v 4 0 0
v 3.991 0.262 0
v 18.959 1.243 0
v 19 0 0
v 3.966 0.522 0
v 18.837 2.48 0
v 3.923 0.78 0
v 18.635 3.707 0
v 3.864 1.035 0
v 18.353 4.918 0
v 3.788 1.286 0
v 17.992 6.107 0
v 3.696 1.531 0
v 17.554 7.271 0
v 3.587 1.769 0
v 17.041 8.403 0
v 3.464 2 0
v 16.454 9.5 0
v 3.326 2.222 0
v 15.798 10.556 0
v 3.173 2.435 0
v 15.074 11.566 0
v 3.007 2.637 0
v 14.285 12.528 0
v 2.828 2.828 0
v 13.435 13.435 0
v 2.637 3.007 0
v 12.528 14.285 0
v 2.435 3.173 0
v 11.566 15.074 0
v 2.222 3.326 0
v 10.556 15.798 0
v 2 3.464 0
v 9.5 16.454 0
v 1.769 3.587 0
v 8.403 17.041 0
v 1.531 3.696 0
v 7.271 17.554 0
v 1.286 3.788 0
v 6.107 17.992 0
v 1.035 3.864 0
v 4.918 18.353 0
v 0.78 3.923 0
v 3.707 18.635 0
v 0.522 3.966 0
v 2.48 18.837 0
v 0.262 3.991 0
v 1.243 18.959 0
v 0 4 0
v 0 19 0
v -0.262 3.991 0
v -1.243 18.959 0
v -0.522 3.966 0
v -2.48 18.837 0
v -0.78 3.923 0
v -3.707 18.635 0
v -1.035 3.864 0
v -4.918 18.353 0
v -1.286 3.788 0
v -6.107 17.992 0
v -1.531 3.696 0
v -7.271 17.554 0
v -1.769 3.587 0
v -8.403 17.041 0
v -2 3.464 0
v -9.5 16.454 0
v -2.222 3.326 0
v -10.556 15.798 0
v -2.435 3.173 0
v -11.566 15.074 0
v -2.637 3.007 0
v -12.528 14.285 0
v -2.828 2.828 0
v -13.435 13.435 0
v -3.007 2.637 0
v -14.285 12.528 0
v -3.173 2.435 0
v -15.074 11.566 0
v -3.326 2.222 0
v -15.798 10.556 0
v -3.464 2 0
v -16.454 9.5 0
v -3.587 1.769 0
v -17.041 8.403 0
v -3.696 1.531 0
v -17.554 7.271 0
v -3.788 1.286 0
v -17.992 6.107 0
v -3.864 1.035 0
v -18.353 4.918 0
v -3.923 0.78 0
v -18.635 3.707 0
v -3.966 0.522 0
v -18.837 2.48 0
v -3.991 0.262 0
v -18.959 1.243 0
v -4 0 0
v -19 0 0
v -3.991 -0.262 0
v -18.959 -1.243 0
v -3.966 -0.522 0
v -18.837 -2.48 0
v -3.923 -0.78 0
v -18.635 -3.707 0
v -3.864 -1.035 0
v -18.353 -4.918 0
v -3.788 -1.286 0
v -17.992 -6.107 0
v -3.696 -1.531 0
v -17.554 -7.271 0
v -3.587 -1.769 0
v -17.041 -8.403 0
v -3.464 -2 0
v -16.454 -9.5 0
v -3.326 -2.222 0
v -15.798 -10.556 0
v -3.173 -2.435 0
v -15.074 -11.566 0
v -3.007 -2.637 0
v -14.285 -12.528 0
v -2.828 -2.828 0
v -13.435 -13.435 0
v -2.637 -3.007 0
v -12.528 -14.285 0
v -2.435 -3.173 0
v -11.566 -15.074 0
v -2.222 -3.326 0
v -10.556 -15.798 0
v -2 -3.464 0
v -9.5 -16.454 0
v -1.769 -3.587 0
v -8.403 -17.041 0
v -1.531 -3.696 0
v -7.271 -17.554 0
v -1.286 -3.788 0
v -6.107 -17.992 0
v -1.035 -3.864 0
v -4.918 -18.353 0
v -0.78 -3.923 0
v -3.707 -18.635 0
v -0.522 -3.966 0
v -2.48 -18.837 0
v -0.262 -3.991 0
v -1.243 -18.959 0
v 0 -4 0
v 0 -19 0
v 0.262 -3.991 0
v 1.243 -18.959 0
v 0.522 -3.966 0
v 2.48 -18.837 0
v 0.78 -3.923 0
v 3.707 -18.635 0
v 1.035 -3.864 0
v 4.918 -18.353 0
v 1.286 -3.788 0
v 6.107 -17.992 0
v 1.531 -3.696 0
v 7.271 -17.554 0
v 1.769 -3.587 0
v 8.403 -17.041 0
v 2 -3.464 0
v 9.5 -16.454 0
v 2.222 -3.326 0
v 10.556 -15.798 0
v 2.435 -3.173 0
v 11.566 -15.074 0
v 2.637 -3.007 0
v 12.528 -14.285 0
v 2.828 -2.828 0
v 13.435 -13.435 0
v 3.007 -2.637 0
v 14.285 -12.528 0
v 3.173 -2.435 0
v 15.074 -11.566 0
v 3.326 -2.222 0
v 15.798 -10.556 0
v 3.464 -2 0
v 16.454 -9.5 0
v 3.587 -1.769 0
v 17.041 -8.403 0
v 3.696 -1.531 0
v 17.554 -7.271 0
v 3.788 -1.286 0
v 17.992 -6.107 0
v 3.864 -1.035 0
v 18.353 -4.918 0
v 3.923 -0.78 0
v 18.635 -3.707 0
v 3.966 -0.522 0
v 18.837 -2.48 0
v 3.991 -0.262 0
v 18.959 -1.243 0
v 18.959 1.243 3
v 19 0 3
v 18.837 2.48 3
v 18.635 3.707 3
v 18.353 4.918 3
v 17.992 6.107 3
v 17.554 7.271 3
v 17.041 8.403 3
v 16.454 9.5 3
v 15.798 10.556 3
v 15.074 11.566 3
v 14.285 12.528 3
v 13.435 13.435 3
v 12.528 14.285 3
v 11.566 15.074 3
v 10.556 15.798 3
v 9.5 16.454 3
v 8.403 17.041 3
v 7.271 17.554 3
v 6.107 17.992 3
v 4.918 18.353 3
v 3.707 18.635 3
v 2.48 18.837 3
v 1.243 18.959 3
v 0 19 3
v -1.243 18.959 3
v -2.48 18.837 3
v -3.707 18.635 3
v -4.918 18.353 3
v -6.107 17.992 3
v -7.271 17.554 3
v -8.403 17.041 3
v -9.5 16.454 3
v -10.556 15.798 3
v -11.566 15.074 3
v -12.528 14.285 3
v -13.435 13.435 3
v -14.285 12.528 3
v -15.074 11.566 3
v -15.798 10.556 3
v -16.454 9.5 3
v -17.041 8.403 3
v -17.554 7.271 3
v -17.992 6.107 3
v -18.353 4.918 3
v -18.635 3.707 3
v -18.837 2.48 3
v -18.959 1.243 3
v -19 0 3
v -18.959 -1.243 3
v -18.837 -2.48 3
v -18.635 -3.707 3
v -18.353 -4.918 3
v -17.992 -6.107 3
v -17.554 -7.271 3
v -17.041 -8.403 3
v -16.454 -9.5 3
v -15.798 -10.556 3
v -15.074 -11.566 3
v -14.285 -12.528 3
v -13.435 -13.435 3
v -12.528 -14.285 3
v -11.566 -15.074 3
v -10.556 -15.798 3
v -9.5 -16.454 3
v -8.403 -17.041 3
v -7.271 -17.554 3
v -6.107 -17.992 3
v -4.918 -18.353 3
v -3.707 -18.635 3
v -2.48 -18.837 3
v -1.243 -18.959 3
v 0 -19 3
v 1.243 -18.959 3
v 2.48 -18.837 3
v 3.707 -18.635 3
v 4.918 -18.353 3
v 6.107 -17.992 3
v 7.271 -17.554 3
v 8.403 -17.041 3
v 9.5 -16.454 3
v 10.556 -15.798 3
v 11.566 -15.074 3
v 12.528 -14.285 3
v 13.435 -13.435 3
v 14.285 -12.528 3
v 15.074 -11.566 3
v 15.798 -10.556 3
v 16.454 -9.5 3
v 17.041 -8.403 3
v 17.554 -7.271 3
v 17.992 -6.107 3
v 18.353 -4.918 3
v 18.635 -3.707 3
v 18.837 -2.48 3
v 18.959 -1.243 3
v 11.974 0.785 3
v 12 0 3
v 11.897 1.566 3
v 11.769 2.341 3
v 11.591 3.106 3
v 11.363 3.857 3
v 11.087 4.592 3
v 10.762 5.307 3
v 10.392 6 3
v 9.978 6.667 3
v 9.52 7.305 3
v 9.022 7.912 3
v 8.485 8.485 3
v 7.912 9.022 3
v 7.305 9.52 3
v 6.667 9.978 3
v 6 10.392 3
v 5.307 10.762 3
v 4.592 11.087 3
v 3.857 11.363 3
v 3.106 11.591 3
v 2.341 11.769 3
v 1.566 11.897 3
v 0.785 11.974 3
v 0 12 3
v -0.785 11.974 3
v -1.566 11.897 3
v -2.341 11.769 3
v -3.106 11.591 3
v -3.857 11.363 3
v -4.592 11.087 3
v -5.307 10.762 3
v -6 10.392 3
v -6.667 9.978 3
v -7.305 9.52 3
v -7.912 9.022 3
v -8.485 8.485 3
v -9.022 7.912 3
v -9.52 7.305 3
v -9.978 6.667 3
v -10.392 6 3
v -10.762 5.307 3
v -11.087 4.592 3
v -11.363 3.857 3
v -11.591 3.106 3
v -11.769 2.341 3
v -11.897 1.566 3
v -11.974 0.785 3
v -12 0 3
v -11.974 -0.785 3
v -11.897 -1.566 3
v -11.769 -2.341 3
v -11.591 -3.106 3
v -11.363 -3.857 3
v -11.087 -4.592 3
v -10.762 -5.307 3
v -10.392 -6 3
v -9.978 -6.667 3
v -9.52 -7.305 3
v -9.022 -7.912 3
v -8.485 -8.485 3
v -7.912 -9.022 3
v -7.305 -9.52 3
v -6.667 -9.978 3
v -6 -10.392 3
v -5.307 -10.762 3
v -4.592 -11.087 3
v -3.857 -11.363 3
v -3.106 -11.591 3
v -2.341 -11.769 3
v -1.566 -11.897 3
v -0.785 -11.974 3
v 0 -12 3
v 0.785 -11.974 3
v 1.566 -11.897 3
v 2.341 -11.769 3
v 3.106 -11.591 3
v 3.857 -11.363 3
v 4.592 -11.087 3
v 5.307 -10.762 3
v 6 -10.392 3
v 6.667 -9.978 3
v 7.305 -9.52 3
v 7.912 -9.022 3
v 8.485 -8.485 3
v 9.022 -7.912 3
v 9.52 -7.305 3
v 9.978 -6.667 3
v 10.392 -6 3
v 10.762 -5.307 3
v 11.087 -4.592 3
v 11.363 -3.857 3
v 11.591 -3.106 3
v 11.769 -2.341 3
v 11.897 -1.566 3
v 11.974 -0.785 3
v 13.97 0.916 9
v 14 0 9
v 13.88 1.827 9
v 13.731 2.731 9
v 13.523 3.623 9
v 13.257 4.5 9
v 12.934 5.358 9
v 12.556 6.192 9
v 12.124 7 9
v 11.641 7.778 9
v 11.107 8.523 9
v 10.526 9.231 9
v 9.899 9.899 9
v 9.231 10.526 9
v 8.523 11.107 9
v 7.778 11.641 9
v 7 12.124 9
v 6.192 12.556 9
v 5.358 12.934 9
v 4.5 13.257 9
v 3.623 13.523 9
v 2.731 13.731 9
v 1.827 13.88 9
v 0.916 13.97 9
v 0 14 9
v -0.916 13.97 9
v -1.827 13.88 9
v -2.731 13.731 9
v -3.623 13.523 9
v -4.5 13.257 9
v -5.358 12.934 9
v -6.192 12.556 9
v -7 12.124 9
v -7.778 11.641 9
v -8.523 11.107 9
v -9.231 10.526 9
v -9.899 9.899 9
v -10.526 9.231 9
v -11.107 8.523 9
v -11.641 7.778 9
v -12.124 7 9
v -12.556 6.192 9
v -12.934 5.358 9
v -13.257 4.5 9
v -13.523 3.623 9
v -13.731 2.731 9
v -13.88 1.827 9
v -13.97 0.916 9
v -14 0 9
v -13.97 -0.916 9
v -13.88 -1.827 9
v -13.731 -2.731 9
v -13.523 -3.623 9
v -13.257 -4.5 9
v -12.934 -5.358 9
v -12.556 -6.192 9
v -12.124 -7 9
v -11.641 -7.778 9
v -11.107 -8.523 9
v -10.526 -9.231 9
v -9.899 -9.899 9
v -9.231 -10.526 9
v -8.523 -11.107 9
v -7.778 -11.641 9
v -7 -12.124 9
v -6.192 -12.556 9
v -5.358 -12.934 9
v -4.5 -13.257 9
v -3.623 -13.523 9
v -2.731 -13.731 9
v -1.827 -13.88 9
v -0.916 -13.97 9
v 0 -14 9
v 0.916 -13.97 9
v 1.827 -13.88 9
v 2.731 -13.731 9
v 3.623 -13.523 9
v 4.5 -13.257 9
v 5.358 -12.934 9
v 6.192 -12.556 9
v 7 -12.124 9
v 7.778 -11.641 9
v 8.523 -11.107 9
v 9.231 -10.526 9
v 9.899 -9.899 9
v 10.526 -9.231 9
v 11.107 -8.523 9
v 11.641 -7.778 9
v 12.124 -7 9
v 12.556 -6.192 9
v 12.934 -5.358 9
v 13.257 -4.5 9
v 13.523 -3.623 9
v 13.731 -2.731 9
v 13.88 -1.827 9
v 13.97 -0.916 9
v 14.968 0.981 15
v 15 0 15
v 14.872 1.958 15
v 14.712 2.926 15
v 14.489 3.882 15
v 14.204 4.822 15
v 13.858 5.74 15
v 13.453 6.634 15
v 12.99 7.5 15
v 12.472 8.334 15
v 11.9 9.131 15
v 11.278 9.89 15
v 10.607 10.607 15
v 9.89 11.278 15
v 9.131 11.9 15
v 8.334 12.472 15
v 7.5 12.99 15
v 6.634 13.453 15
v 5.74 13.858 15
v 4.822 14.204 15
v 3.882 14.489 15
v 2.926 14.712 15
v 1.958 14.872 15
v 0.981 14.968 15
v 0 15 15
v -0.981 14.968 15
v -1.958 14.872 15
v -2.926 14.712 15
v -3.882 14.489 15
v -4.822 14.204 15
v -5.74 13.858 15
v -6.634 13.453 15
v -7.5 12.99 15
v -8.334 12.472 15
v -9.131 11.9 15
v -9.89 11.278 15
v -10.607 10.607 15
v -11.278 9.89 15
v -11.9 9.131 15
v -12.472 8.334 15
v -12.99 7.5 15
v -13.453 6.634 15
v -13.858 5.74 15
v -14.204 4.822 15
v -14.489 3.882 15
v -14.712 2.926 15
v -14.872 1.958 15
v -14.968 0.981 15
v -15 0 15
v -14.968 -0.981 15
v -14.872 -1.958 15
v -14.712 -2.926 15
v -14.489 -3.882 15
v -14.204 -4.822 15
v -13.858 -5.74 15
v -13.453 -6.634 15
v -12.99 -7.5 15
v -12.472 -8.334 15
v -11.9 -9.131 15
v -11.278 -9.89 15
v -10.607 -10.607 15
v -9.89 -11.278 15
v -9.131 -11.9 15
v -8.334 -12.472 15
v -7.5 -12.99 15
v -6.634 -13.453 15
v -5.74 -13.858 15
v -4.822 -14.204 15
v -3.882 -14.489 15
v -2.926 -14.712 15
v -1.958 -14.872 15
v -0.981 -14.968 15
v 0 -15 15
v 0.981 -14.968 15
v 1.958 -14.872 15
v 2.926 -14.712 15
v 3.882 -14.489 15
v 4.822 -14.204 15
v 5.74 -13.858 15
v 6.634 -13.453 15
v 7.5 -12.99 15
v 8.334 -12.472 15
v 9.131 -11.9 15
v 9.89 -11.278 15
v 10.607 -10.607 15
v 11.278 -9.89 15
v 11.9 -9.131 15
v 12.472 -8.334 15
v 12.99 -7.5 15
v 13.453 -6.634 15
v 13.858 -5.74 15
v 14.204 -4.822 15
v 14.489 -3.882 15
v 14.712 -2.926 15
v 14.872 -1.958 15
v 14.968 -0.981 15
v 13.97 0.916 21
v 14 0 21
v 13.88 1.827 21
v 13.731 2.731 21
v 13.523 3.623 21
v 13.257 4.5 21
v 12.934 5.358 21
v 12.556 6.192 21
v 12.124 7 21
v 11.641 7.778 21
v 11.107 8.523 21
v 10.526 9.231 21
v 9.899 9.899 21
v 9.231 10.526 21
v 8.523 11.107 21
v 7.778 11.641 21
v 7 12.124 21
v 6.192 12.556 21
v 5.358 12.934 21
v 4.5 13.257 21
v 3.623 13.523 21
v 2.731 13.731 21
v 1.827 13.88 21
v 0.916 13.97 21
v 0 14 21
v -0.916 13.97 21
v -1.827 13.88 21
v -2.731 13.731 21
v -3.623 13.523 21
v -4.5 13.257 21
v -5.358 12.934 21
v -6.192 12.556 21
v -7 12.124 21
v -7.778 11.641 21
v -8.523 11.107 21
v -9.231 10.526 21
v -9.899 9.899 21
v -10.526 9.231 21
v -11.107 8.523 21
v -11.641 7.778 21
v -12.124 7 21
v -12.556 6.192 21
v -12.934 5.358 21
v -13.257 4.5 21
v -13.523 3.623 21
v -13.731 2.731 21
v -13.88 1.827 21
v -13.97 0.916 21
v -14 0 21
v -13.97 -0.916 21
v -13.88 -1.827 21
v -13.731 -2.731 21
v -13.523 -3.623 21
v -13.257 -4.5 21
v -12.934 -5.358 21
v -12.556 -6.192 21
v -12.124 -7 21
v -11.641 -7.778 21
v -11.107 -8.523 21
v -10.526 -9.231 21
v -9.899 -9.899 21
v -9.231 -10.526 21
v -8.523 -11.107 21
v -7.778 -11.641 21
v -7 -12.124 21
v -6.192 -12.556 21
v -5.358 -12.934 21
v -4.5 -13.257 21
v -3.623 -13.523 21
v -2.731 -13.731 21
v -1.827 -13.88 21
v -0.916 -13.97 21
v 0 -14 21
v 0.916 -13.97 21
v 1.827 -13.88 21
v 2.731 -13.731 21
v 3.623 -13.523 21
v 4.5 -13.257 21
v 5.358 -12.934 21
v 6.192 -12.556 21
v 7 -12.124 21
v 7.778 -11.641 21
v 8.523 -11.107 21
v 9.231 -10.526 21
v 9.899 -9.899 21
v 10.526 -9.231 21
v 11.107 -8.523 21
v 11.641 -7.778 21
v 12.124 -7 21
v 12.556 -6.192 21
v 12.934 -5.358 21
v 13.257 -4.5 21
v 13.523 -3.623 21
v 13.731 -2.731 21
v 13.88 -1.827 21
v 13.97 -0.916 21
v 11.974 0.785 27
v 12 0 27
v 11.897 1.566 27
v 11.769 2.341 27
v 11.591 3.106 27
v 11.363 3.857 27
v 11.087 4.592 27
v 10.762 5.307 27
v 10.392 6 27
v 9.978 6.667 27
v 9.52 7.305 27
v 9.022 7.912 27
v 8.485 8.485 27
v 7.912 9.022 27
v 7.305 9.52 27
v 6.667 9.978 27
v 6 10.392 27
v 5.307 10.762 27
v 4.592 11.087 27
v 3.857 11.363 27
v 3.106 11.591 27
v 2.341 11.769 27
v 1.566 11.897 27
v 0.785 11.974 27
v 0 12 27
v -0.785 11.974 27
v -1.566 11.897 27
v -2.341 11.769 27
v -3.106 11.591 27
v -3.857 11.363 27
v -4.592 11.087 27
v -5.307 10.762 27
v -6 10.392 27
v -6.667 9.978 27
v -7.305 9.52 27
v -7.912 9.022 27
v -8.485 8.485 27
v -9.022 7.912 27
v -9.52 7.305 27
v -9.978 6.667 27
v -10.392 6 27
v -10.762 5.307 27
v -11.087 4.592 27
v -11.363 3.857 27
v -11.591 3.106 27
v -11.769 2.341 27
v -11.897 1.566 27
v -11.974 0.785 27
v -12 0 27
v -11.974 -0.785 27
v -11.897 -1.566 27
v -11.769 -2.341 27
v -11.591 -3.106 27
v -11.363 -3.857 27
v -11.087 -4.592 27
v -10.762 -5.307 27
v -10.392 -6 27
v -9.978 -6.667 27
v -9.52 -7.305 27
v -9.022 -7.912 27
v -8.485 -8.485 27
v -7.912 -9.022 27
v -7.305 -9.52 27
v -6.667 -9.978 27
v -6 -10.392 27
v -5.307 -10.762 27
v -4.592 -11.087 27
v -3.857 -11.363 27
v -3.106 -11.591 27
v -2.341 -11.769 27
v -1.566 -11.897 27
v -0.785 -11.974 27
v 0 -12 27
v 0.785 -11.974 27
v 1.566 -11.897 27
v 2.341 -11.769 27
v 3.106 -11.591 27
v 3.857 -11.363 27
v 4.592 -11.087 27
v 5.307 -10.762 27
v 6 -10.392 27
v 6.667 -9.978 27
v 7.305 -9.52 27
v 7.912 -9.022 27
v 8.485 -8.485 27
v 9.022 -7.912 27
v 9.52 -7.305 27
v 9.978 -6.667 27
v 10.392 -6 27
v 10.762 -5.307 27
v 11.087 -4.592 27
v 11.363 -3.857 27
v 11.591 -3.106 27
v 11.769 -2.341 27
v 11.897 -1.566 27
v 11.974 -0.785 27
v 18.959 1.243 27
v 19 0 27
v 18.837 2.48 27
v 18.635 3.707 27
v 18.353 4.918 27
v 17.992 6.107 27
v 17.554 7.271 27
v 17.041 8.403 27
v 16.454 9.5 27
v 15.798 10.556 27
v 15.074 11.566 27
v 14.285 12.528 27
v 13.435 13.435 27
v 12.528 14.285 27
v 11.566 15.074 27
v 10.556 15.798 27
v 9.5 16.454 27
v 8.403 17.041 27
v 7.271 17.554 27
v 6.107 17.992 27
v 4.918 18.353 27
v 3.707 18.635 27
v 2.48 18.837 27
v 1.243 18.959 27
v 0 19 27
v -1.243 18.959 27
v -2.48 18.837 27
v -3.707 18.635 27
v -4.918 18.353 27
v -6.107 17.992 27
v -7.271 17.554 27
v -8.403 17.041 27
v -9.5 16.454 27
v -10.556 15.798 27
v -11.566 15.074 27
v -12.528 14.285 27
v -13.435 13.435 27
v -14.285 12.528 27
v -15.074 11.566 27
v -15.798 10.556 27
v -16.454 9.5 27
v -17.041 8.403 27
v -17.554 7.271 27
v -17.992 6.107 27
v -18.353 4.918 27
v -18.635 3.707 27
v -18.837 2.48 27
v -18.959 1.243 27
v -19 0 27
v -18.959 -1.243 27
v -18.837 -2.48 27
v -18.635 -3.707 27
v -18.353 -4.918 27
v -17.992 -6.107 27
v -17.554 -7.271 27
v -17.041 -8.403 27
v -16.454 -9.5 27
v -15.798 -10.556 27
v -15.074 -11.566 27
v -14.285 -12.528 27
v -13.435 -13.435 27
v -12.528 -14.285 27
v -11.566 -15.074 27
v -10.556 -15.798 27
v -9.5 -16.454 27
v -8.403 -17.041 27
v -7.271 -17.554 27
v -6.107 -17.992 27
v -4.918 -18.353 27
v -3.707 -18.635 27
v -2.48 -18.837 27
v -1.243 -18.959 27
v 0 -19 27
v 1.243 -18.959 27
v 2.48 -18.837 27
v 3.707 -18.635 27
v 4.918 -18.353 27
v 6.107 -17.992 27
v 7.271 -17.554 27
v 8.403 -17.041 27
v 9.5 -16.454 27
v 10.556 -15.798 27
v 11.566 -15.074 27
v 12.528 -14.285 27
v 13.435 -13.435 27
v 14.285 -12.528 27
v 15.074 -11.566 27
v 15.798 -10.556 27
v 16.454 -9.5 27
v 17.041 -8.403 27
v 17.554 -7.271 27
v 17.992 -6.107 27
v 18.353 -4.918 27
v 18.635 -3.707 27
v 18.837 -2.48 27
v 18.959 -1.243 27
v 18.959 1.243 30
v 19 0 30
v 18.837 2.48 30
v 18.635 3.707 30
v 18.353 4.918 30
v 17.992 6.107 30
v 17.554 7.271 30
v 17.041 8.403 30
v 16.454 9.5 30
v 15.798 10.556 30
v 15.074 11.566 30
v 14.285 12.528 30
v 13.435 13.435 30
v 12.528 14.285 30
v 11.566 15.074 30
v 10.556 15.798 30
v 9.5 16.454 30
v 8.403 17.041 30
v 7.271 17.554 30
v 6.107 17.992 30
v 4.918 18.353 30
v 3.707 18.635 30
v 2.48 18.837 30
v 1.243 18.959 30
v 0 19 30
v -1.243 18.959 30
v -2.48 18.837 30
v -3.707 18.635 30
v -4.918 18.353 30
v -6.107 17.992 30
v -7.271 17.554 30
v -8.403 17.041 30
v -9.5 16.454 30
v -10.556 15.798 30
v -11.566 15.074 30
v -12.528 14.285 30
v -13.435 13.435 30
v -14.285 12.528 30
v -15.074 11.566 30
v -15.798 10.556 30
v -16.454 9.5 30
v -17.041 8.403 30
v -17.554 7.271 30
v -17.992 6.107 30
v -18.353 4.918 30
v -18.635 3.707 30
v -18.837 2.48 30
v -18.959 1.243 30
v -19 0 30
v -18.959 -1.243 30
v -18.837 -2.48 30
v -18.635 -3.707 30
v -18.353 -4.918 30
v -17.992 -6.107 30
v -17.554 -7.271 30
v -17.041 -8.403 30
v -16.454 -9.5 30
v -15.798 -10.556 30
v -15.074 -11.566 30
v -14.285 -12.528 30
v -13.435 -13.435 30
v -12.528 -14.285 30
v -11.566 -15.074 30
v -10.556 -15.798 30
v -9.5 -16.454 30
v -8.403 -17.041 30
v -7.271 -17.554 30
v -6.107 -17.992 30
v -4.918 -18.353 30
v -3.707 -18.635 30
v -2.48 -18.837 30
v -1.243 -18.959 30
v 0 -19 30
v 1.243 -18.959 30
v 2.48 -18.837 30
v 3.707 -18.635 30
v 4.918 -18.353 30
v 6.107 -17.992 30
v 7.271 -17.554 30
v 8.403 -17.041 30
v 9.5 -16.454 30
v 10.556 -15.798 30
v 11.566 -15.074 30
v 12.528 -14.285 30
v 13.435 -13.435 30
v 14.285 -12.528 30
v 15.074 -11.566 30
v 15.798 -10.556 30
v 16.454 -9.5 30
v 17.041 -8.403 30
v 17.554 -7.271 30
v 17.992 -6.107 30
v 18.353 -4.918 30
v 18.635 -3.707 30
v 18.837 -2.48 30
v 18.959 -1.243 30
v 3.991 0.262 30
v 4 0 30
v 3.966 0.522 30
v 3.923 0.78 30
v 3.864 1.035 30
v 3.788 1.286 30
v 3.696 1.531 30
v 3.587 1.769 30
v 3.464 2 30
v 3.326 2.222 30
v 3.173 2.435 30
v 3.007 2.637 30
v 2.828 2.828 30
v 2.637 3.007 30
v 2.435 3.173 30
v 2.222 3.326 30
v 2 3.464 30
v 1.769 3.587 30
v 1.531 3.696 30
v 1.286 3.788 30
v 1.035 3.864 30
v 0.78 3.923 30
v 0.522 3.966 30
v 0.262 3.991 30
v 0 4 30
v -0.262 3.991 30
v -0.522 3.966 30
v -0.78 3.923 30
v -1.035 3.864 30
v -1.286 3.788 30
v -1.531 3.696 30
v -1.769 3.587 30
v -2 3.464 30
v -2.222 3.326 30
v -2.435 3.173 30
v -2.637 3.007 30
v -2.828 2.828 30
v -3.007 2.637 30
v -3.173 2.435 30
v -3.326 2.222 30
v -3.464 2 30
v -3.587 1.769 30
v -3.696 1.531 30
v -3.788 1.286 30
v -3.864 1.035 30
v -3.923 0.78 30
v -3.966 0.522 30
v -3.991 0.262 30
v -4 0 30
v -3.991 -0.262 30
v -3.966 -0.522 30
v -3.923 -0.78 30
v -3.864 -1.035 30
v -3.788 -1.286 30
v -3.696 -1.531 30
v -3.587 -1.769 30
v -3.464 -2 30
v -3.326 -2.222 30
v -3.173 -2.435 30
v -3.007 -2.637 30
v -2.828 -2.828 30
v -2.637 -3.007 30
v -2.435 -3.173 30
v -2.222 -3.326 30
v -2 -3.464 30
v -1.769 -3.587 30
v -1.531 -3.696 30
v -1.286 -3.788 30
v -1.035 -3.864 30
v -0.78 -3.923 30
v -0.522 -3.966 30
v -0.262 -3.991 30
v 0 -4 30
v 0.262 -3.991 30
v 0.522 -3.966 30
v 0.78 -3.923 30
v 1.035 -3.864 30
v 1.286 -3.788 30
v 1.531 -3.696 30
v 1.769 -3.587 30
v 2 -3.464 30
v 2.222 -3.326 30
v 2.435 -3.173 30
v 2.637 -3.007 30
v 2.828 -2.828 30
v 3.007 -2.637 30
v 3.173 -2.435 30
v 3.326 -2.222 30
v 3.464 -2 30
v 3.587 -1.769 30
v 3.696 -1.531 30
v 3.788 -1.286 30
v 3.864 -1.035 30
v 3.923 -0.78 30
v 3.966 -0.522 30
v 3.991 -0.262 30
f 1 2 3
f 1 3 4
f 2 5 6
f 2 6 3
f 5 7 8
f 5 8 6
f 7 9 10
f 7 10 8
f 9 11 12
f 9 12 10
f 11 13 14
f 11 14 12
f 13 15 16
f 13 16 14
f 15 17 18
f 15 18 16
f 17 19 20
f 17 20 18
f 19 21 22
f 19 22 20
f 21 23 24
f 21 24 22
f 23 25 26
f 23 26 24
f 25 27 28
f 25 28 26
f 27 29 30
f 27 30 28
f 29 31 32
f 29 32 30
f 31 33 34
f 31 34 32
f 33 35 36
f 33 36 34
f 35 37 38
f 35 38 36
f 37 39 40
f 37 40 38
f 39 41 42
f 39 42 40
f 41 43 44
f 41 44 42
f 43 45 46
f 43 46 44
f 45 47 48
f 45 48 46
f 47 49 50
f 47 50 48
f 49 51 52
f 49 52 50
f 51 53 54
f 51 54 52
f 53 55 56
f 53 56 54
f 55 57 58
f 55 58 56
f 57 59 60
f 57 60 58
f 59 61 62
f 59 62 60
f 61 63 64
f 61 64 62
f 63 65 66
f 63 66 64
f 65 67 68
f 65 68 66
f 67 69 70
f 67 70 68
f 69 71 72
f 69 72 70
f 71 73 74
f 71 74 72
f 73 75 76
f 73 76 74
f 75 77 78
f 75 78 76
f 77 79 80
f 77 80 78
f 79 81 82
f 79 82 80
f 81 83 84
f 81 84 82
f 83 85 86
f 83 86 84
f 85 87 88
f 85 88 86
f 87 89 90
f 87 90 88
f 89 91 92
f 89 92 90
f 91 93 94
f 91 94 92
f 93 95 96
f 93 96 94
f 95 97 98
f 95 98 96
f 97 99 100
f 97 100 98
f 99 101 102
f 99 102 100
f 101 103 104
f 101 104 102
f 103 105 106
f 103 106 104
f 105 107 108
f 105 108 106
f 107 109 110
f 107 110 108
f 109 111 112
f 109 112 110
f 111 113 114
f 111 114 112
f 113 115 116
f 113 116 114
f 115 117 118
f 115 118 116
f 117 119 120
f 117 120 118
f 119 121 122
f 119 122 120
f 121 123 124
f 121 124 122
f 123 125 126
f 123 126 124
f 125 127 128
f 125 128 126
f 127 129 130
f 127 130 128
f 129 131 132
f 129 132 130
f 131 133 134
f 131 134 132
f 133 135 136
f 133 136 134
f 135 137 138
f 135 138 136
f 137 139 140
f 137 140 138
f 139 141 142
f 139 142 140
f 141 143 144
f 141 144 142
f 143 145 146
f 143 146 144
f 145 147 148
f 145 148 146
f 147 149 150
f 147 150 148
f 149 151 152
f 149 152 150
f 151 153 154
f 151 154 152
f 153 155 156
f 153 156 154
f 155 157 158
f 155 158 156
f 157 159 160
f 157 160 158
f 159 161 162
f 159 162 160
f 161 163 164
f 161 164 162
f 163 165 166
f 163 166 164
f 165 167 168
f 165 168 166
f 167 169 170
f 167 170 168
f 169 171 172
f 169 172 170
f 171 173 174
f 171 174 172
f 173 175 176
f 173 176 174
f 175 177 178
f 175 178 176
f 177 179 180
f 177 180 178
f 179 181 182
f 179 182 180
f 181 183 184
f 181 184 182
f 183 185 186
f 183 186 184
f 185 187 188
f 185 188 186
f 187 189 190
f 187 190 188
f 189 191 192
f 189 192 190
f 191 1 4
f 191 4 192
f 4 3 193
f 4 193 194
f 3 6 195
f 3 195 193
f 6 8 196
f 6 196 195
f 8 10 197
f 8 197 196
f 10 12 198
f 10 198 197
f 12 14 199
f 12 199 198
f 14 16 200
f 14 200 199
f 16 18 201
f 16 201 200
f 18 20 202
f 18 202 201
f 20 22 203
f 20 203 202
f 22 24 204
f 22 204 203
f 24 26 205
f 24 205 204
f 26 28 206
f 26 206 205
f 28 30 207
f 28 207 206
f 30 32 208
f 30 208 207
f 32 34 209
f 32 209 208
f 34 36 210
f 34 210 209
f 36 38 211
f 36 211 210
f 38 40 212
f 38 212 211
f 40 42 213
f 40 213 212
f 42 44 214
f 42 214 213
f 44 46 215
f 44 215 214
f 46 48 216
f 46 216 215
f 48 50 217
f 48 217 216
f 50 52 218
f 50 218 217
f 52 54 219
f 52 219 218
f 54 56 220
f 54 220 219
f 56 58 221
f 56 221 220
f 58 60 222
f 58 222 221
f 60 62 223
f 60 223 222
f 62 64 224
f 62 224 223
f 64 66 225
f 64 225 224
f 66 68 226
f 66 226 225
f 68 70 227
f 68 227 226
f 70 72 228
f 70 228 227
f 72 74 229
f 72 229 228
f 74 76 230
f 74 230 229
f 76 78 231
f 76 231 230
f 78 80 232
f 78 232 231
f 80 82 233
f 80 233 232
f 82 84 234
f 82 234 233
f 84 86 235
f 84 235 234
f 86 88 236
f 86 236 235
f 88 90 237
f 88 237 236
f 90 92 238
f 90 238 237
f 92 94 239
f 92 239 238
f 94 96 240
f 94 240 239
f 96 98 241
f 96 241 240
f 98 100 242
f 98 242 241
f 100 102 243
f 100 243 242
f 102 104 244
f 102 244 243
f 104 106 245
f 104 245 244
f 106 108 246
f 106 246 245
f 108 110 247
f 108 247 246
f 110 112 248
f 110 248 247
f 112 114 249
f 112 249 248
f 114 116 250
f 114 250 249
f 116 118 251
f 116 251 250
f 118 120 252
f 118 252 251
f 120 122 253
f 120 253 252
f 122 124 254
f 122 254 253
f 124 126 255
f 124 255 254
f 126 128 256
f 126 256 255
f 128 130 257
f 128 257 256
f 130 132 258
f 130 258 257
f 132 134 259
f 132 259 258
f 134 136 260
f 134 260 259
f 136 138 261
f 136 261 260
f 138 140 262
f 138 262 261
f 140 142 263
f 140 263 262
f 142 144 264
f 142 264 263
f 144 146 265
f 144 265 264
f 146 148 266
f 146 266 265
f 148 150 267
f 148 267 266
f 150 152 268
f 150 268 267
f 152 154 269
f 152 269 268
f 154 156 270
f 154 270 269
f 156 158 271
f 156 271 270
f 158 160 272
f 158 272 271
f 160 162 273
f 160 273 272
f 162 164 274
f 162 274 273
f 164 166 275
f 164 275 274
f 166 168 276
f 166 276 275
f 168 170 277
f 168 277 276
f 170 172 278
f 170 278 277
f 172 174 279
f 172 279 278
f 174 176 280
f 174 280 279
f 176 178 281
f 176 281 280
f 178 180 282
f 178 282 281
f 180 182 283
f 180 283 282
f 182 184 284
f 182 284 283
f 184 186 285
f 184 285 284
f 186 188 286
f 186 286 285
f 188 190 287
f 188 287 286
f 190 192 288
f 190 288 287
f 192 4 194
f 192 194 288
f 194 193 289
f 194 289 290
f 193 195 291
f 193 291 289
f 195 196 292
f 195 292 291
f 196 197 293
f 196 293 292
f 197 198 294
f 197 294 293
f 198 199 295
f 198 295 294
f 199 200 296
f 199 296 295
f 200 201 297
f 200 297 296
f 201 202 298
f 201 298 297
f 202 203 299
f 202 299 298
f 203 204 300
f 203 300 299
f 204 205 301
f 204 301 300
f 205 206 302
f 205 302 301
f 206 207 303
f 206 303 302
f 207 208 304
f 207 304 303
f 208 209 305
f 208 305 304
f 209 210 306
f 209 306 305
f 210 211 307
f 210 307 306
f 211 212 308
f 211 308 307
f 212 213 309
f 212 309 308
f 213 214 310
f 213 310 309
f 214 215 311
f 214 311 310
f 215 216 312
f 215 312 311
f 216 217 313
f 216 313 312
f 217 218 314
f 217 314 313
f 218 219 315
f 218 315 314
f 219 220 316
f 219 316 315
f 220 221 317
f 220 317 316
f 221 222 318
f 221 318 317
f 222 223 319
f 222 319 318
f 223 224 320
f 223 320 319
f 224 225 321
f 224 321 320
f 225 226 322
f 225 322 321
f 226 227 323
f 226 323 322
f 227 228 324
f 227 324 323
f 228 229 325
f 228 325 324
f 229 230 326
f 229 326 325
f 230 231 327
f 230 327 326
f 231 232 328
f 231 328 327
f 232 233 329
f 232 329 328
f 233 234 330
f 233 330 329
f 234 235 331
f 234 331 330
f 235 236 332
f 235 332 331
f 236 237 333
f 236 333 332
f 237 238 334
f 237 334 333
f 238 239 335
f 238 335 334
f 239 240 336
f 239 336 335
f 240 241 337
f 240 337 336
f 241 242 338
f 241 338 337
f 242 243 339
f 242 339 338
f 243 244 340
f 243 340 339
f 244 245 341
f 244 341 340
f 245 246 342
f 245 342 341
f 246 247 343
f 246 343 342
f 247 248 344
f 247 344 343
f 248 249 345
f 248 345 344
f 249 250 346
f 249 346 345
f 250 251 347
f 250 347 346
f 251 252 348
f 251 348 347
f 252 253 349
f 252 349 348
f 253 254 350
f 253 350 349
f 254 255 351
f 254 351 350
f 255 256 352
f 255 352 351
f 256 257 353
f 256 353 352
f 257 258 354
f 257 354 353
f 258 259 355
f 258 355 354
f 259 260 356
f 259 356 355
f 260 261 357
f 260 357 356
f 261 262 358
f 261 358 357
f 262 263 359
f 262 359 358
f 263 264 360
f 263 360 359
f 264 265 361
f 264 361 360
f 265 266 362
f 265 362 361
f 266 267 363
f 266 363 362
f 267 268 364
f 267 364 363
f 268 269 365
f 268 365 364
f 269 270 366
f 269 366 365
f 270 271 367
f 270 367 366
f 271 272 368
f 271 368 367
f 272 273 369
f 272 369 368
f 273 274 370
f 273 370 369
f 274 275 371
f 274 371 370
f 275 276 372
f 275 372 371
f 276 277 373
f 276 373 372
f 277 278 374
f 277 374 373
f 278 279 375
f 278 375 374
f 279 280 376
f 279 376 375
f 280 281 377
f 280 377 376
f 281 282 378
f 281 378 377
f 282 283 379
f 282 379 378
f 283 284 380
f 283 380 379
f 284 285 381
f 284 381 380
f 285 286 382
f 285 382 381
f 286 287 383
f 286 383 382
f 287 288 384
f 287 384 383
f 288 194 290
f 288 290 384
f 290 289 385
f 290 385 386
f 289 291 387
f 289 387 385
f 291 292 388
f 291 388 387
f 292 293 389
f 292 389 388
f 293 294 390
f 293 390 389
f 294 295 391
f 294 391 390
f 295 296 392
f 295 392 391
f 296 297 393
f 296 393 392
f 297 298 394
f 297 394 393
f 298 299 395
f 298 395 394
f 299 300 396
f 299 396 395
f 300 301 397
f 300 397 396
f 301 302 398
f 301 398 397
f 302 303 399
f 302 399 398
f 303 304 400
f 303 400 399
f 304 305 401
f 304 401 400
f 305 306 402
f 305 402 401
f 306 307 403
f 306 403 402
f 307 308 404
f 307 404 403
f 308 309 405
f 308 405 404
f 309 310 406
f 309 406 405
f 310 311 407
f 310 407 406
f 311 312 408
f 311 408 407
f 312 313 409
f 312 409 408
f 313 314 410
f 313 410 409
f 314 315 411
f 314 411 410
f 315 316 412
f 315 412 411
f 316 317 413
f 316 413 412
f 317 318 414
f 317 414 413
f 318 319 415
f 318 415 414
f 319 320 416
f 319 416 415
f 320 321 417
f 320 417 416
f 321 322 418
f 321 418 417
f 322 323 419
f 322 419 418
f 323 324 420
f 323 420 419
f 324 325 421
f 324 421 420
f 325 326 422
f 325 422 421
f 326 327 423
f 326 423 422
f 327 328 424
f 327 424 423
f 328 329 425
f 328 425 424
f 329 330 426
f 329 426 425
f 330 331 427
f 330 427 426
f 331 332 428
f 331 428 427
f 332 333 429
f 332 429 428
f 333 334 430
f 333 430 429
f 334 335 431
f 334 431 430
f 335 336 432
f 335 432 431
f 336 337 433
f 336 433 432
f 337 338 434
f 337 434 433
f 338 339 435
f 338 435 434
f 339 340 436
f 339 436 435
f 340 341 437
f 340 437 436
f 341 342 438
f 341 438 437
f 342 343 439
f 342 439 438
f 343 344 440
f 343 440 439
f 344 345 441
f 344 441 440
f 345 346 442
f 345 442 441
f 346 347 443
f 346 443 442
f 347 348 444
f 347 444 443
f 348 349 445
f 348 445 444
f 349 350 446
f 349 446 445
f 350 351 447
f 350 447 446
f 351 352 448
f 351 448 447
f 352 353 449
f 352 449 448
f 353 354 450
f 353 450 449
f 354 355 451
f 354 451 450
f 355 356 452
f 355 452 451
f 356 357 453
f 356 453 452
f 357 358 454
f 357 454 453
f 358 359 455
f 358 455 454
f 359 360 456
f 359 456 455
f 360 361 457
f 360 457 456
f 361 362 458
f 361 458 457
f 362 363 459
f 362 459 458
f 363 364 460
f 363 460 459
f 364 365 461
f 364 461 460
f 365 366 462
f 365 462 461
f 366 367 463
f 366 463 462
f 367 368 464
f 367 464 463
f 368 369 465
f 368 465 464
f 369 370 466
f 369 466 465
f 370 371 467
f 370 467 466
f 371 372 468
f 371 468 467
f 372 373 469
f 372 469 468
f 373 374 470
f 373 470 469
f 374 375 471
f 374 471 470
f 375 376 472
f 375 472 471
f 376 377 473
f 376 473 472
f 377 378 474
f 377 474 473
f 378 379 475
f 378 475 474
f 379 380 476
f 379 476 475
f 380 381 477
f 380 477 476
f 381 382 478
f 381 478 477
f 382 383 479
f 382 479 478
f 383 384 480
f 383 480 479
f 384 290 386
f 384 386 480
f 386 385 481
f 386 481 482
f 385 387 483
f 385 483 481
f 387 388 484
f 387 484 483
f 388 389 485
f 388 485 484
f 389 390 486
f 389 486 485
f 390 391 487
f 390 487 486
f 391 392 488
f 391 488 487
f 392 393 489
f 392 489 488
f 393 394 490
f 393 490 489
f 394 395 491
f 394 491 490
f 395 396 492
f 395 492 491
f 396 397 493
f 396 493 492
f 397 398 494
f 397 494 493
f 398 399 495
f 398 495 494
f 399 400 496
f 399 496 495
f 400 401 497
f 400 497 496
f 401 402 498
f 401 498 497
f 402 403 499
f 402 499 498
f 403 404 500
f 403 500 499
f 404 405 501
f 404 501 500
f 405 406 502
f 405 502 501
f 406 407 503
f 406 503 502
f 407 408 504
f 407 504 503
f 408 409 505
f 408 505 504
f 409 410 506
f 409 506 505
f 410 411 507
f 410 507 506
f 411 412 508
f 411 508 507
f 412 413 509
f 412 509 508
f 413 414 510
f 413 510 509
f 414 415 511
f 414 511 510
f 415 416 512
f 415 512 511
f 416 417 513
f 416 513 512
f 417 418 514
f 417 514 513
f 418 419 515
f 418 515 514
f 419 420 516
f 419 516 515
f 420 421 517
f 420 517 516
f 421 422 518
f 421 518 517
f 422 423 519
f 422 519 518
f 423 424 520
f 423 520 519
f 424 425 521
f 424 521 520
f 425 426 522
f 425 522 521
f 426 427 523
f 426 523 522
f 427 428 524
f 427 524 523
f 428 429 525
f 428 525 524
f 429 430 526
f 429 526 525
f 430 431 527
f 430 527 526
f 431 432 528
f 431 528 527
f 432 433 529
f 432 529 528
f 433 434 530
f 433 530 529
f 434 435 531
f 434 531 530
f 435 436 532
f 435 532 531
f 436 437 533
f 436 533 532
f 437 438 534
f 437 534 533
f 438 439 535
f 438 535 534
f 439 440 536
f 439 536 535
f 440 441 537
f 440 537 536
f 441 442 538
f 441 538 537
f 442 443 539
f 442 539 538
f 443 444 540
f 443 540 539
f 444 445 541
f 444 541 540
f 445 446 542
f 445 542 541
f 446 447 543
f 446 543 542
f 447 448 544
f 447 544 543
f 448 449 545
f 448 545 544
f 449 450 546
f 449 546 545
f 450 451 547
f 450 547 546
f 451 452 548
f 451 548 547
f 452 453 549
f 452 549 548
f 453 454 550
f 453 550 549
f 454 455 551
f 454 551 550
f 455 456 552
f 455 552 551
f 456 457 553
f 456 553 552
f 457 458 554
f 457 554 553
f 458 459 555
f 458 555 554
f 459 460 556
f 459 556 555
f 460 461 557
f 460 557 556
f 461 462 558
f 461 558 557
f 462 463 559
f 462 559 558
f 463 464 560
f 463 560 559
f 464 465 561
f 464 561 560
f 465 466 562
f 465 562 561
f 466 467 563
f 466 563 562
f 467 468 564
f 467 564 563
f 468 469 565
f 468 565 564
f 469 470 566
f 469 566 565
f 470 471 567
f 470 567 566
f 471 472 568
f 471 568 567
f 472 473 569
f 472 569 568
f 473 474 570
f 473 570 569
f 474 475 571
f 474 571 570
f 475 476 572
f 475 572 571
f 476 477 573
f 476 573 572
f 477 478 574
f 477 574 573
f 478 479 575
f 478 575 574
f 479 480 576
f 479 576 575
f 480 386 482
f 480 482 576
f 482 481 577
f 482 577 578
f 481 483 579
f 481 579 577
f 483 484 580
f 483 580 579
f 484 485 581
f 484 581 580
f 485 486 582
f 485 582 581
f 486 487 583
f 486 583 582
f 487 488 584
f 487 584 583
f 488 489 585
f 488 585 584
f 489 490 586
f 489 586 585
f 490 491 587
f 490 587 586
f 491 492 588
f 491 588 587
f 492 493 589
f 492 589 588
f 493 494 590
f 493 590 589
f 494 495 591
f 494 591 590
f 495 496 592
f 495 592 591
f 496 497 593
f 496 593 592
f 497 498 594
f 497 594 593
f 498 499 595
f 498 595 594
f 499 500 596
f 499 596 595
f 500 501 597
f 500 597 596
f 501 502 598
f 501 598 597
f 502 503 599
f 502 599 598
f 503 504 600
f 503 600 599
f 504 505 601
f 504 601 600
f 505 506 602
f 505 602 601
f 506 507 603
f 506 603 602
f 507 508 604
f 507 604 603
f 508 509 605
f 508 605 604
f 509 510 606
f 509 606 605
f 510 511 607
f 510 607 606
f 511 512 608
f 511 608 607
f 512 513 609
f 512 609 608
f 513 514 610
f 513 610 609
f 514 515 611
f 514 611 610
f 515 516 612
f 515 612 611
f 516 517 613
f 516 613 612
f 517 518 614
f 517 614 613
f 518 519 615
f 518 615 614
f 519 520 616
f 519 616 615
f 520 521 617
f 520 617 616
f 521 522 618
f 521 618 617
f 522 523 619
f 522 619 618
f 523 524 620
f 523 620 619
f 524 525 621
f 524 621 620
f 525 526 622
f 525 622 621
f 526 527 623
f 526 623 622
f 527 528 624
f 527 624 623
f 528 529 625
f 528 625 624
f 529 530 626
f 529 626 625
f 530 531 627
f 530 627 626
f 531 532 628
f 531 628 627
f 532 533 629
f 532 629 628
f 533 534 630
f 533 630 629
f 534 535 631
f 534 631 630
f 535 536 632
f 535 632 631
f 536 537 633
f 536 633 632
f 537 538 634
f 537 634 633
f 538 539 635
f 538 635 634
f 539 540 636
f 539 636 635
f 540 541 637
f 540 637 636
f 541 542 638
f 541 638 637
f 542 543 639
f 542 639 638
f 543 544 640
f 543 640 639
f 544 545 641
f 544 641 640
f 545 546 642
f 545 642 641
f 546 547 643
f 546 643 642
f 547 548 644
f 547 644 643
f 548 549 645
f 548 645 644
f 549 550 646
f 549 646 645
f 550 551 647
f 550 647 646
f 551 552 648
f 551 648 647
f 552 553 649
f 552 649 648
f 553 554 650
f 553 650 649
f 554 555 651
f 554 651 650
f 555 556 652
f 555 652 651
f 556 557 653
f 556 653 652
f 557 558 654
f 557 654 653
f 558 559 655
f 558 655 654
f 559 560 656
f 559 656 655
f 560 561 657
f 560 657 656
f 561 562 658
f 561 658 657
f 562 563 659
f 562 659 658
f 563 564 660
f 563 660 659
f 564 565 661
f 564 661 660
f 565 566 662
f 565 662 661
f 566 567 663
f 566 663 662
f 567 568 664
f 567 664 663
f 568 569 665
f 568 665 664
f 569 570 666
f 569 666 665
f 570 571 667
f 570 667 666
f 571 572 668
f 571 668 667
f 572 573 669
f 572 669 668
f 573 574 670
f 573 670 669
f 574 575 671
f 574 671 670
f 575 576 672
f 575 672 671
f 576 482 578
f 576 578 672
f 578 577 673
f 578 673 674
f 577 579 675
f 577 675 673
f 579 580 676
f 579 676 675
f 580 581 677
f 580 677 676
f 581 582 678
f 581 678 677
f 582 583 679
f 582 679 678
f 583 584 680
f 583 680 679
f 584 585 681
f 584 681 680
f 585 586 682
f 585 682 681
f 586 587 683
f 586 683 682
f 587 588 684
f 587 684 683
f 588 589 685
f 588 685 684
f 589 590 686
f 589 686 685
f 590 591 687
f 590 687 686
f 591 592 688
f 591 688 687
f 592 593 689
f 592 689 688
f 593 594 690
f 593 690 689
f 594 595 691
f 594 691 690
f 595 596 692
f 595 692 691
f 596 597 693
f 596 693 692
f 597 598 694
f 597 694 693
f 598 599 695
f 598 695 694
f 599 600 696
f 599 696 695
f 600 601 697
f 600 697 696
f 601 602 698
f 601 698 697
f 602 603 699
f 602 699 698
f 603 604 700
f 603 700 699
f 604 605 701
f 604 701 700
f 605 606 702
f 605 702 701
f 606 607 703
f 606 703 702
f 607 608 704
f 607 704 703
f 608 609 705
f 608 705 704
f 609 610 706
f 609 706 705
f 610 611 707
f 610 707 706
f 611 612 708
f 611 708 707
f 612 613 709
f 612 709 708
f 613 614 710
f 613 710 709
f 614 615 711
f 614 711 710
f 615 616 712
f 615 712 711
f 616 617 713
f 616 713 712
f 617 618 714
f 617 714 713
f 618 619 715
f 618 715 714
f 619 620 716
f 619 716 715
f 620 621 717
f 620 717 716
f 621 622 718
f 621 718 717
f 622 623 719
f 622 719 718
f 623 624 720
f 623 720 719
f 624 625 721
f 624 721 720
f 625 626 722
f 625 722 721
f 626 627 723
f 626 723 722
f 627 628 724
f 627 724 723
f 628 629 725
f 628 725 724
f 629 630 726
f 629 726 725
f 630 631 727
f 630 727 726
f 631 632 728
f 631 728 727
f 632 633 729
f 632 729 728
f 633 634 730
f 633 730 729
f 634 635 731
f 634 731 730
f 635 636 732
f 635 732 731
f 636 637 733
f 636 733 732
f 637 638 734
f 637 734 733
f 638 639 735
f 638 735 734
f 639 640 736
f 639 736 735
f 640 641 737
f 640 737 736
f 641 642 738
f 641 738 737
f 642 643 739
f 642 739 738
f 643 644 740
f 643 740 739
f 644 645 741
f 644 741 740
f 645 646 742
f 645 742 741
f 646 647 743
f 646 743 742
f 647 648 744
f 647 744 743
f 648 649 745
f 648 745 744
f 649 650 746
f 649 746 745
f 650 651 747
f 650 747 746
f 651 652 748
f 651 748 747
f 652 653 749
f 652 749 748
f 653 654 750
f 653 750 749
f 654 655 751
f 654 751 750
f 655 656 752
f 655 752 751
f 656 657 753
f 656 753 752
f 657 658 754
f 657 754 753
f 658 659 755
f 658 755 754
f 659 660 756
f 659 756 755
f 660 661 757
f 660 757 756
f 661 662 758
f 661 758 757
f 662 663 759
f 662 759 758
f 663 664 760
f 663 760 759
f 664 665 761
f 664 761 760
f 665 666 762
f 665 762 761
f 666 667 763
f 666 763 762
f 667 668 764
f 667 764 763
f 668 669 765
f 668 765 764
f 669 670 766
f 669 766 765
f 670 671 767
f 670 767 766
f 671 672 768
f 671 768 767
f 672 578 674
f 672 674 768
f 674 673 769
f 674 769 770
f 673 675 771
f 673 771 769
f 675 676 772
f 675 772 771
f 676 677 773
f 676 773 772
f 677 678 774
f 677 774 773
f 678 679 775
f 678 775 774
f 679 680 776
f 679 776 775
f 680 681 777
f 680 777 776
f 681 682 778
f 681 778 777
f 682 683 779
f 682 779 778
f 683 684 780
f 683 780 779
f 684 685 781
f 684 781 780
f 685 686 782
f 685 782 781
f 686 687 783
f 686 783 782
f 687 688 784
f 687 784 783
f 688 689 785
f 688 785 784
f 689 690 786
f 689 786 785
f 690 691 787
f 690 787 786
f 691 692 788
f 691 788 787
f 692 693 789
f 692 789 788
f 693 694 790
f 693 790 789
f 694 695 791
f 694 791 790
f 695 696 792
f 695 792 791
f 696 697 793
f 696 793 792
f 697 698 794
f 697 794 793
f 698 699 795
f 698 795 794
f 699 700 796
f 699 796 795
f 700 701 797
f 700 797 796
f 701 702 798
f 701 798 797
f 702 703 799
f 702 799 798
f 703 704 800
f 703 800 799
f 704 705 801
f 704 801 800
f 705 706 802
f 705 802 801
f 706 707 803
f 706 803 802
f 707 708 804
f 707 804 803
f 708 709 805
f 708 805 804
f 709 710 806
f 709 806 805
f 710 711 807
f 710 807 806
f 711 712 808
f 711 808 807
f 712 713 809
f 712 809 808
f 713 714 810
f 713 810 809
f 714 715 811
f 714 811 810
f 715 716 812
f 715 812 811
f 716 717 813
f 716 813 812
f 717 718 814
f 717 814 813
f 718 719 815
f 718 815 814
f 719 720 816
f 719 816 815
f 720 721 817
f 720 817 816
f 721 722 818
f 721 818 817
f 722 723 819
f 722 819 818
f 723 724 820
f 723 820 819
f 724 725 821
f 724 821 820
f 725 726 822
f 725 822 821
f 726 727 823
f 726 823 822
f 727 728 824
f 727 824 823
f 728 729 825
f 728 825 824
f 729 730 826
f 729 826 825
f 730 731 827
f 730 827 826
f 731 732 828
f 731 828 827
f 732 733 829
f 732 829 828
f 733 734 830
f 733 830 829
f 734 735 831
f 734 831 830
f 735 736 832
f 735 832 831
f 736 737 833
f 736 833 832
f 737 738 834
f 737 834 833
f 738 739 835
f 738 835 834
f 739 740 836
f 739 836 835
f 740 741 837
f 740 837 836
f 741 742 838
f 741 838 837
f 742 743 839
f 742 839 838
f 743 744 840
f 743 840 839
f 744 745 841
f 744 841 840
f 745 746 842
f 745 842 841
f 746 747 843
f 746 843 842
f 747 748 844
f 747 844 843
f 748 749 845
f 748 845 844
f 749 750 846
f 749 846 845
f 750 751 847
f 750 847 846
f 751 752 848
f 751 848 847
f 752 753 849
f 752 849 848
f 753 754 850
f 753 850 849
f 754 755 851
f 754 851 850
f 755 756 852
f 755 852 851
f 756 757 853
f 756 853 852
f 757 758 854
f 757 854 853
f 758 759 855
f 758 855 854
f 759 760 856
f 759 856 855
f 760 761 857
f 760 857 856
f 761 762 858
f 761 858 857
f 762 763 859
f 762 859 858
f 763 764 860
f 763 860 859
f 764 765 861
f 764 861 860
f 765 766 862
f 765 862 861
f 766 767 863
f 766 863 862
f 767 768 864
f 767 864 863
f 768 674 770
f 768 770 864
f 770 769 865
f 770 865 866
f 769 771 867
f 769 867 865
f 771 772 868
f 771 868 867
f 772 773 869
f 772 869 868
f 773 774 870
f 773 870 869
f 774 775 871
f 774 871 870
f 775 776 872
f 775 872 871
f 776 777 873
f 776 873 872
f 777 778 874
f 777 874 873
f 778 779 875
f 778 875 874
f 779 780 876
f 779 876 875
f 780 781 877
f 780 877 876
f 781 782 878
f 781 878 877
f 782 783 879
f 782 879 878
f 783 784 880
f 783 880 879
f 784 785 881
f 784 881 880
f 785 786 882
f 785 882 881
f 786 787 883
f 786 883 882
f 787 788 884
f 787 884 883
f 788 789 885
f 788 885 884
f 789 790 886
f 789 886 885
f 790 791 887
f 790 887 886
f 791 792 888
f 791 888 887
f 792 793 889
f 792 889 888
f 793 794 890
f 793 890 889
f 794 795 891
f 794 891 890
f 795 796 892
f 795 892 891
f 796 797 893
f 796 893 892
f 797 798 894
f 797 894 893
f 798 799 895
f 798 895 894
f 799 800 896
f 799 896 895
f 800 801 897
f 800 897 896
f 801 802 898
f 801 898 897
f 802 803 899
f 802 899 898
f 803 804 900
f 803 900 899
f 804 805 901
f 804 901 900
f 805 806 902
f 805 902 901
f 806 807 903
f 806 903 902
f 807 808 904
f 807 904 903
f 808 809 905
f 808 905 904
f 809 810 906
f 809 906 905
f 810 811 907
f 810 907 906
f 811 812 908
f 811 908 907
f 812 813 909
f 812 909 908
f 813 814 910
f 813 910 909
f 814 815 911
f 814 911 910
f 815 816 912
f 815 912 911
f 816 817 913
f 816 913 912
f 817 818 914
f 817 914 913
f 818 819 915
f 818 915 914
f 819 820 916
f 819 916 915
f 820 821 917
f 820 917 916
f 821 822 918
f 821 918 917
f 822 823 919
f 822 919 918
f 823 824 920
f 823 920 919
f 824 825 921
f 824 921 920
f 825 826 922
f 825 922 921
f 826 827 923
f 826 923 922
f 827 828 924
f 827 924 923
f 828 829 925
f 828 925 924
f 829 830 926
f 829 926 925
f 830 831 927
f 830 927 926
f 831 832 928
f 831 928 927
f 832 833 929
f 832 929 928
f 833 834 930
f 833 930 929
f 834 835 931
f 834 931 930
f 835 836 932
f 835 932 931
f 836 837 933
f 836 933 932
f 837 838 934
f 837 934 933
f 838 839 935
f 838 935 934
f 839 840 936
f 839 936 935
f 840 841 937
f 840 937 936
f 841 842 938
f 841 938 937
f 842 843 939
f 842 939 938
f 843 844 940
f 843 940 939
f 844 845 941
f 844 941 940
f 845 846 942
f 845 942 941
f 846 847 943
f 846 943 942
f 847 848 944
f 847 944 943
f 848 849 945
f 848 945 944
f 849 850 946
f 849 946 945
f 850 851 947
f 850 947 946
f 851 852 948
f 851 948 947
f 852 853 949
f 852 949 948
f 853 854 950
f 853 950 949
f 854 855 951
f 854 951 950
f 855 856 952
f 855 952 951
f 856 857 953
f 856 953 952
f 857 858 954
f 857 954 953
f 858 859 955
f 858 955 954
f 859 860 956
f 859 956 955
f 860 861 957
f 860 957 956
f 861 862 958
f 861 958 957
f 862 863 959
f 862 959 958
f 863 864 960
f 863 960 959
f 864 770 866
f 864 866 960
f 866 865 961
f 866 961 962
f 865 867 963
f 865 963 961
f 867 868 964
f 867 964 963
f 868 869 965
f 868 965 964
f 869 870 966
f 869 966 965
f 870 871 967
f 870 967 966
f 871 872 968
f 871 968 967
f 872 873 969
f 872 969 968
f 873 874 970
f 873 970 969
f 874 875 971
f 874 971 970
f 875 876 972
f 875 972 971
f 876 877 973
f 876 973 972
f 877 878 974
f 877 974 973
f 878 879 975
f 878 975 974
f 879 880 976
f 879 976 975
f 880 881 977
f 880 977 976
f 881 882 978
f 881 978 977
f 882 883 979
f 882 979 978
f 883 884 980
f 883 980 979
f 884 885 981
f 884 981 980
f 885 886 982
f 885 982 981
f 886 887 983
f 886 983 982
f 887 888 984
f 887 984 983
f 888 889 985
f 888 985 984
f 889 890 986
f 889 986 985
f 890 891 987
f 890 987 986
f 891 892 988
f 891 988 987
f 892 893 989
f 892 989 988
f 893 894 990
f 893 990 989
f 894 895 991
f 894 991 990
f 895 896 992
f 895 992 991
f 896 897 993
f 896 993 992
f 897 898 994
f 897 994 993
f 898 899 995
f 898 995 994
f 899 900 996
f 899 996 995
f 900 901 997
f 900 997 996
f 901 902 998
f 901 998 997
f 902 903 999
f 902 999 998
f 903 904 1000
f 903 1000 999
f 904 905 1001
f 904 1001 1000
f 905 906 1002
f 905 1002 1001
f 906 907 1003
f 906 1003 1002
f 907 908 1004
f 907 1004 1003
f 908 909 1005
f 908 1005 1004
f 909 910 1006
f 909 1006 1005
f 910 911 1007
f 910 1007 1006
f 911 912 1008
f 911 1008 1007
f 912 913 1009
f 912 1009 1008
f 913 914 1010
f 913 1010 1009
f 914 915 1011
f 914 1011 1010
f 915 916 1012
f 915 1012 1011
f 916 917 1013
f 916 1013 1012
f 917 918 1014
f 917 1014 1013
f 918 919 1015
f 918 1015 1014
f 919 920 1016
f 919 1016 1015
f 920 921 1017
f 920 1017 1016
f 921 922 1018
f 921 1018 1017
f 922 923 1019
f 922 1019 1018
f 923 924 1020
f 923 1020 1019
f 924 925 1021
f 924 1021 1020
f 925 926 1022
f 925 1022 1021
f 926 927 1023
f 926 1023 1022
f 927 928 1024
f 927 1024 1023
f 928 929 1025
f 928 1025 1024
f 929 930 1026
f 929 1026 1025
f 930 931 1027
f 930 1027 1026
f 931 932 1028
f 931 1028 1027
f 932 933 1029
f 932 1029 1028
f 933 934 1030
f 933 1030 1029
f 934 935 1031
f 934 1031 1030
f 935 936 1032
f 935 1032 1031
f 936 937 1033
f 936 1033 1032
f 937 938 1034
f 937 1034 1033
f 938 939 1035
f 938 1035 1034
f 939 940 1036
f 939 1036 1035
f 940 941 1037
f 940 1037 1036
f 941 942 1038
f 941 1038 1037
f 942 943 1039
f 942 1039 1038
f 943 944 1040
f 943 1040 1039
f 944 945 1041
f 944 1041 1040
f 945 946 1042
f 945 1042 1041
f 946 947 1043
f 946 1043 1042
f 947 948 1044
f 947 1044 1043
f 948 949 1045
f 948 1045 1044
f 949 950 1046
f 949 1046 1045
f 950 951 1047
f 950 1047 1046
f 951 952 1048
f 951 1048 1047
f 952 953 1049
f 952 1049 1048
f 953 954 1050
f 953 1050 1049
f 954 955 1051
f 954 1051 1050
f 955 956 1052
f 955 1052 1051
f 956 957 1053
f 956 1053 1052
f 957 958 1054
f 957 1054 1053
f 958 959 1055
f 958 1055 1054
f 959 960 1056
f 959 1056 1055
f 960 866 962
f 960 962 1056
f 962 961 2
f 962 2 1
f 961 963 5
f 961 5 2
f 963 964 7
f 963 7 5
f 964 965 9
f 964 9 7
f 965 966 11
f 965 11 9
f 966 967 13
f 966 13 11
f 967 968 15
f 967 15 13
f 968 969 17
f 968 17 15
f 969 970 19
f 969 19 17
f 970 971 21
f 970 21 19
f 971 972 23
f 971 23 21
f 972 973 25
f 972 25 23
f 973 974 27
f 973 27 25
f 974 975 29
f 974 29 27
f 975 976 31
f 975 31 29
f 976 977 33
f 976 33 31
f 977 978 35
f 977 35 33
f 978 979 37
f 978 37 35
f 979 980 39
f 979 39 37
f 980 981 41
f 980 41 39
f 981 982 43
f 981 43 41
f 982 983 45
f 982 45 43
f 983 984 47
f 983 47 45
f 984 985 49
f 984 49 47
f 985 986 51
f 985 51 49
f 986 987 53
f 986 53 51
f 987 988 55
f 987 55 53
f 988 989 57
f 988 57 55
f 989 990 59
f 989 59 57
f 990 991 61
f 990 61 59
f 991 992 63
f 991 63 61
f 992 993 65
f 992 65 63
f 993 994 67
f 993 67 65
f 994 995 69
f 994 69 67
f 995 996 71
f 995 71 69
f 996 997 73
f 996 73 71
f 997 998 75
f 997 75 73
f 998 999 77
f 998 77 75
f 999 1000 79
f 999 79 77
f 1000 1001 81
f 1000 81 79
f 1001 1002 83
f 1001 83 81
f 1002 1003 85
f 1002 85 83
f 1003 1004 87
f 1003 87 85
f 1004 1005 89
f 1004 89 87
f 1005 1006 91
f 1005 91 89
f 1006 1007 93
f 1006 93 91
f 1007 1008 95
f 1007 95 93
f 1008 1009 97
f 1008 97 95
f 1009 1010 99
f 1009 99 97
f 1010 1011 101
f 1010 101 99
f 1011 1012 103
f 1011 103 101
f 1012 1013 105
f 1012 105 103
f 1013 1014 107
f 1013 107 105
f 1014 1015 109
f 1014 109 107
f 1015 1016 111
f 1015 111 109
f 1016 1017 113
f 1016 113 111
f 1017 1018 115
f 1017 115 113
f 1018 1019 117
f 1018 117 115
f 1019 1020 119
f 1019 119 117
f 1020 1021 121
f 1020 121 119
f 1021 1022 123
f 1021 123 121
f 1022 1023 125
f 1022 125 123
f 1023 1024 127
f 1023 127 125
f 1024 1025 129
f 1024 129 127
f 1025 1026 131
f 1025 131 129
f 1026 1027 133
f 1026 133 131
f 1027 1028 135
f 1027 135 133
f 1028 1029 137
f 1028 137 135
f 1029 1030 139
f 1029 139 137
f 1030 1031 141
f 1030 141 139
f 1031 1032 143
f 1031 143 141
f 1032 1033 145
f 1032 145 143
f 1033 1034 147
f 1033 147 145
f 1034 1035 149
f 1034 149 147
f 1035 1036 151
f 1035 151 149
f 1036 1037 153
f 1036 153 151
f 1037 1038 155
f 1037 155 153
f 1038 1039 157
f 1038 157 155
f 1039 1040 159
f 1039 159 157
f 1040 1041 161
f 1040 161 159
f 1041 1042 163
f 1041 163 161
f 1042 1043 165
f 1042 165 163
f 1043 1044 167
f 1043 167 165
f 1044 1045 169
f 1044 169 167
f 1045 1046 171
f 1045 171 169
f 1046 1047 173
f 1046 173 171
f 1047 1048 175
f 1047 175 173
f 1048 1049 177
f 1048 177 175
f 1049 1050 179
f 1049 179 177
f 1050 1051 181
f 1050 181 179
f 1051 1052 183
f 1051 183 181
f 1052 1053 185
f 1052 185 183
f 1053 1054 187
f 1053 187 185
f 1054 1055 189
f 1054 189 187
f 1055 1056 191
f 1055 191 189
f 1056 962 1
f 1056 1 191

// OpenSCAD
// Original MechIntel educational model. CC0-1.0. Units: mm.
// Not a standardized or load-rated component.
$fn=96;
// Section points: [radius, height], mm. Edit to change the profile.
section=[[4, 0], [19, 0], [19, 3], [12, 3], [14, 9], [15, 15], [14, 21], [12, 27], [19, 27], [19, 30], [4, 30]];
rotate_extrude($fn=96) polygon(points=section);
